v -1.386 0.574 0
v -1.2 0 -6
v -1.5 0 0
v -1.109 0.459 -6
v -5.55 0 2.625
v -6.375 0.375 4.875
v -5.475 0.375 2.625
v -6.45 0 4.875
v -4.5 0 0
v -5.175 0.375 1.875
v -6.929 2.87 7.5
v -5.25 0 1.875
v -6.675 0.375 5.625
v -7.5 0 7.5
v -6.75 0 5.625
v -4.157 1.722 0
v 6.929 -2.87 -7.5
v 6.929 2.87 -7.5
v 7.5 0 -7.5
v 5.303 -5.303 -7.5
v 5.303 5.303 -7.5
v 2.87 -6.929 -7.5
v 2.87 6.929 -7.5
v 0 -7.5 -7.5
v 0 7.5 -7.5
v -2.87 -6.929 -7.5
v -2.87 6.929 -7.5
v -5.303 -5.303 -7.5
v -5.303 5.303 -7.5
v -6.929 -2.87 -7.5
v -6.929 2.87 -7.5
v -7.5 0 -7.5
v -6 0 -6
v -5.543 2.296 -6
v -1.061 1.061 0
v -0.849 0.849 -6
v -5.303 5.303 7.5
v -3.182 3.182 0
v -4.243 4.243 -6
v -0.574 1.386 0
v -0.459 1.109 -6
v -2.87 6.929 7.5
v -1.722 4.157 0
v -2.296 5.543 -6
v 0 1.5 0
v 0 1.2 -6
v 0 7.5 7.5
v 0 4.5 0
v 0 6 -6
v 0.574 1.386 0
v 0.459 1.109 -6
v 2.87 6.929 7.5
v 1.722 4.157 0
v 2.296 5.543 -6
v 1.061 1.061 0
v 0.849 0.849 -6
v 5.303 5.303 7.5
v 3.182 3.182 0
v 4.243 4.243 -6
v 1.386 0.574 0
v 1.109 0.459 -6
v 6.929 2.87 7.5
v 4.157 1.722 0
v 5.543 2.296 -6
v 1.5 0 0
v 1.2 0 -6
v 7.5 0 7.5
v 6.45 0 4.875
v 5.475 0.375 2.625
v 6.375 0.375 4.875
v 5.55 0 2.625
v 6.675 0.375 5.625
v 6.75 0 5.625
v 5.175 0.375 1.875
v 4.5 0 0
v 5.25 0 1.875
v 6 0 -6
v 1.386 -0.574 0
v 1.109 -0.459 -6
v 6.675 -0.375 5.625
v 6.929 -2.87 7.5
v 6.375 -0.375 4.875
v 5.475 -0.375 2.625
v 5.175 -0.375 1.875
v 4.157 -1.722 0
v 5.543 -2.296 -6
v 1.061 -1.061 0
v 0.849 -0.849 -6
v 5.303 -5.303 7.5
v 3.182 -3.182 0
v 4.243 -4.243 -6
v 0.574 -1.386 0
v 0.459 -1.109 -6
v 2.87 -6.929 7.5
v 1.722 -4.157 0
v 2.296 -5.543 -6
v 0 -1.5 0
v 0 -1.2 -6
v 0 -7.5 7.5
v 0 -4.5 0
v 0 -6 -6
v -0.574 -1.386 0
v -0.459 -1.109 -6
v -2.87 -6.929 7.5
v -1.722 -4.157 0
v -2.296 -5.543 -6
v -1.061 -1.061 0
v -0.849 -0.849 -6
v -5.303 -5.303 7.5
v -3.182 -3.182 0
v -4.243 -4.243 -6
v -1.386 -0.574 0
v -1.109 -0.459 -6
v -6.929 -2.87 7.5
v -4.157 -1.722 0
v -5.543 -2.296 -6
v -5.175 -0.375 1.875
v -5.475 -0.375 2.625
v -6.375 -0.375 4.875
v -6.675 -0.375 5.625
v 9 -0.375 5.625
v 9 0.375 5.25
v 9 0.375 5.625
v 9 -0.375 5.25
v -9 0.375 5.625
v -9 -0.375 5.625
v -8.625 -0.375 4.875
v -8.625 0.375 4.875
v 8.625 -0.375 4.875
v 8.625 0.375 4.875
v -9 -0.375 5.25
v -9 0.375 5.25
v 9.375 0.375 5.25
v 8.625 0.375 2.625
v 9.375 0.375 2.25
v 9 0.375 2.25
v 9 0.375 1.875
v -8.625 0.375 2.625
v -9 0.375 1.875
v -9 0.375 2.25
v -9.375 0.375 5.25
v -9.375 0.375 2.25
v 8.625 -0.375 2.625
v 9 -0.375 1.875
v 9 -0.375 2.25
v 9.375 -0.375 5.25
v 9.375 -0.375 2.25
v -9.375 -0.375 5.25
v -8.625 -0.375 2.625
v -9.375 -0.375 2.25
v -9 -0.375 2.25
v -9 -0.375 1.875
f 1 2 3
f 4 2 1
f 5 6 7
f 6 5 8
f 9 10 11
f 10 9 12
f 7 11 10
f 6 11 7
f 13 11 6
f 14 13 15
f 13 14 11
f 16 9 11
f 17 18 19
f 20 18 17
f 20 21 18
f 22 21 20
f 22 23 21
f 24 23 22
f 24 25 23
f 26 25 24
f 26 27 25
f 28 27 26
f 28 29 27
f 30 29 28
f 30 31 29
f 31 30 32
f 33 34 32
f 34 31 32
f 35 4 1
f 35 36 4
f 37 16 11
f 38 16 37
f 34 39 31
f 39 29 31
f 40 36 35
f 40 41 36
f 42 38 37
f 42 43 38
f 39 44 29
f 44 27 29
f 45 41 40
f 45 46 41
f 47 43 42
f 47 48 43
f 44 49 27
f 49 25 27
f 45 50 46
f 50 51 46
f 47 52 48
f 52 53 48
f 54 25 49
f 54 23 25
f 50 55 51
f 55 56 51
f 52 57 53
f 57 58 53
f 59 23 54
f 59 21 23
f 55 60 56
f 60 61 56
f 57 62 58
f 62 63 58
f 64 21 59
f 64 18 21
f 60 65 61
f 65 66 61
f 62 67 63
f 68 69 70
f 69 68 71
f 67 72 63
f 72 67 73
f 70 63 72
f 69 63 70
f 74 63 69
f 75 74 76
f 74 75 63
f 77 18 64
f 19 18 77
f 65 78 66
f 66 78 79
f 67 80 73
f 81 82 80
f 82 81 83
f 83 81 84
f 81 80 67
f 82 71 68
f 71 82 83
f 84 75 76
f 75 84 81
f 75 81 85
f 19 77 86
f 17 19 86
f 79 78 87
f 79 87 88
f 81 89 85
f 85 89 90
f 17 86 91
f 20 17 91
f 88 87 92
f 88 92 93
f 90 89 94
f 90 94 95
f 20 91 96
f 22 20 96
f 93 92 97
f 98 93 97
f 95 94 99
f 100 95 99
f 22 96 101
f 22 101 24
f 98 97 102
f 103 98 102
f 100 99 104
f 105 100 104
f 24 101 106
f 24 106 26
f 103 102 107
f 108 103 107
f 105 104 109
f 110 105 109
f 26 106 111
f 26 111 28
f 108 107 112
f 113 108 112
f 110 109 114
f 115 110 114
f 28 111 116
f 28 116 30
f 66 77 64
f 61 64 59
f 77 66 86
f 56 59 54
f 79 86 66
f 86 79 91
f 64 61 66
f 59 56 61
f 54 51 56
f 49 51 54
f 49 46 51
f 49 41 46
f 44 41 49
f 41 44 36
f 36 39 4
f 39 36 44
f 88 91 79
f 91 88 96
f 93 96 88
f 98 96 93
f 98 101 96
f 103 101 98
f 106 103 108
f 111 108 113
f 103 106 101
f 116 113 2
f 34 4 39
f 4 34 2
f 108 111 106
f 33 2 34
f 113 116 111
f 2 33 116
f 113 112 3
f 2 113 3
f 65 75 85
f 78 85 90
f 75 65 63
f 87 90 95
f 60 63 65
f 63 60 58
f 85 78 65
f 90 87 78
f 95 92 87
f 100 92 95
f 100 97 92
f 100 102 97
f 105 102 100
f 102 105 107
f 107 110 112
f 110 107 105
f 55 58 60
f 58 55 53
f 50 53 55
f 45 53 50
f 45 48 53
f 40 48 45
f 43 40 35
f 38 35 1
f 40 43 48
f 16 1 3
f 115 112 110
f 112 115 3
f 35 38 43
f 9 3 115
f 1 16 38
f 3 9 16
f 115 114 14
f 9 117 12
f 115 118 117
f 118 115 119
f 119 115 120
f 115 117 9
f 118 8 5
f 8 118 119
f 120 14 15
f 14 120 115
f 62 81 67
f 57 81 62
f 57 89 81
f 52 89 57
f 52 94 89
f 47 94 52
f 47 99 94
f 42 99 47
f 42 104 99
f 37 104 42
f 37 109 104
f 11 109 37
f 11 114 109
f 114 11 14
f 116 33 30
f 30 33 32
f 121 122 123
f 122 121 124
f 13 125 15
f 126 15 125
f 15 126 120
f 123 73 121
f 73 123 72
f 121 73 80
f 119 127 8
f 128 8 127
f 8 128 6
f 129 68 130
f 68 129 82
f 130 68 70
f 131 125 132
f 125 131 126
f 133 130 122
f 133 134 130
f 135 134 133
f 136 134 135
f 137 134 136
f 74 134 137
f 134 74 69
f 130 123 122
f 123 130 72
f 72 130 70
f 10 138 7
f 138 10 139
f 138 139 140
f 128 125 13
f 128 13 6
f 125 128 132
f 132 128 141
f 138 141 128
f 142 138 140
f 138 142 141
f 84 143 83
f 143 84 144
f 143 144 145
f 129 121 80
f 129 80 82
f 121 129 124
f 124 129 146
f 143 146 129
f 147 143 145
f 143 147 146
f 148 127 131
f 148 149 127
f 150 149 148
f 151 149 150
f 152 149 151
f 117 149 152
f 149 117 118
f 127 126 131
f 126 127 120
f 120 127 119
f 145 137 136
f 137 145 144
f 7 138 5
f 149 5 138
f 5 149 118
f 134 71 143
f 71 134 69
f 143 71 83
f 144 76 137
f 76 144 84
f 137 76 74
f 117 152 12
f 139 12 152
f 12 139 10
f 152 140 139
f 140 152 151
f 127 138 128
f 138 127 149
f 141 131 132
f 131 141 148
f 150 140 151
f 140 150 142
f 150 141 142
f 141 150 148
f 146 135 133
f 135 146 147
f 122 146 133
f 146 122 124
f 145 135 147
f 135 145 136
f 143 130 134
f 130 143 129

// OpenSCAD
scale(1.5)
translate([0, 0, -5]) {
    rotate_extrude() polygon([[5, 10], [3, 5], [1, 5], [.8, 1], [4, 1], [5, 0], [0, 0], [0, 10]]);

    translate([0, 0, 8.5])
    cube([12, .5, .5], center = true);

    translate([0, 0, 6.5])
    cube([12, .5, .5], center = true);

    translate([-6, 0, 7.5])
    cube([.5, .5, 2], center = true);

    translate([6, 0, 7.5])
    cube([.5, .5, 2], center = true);
}
